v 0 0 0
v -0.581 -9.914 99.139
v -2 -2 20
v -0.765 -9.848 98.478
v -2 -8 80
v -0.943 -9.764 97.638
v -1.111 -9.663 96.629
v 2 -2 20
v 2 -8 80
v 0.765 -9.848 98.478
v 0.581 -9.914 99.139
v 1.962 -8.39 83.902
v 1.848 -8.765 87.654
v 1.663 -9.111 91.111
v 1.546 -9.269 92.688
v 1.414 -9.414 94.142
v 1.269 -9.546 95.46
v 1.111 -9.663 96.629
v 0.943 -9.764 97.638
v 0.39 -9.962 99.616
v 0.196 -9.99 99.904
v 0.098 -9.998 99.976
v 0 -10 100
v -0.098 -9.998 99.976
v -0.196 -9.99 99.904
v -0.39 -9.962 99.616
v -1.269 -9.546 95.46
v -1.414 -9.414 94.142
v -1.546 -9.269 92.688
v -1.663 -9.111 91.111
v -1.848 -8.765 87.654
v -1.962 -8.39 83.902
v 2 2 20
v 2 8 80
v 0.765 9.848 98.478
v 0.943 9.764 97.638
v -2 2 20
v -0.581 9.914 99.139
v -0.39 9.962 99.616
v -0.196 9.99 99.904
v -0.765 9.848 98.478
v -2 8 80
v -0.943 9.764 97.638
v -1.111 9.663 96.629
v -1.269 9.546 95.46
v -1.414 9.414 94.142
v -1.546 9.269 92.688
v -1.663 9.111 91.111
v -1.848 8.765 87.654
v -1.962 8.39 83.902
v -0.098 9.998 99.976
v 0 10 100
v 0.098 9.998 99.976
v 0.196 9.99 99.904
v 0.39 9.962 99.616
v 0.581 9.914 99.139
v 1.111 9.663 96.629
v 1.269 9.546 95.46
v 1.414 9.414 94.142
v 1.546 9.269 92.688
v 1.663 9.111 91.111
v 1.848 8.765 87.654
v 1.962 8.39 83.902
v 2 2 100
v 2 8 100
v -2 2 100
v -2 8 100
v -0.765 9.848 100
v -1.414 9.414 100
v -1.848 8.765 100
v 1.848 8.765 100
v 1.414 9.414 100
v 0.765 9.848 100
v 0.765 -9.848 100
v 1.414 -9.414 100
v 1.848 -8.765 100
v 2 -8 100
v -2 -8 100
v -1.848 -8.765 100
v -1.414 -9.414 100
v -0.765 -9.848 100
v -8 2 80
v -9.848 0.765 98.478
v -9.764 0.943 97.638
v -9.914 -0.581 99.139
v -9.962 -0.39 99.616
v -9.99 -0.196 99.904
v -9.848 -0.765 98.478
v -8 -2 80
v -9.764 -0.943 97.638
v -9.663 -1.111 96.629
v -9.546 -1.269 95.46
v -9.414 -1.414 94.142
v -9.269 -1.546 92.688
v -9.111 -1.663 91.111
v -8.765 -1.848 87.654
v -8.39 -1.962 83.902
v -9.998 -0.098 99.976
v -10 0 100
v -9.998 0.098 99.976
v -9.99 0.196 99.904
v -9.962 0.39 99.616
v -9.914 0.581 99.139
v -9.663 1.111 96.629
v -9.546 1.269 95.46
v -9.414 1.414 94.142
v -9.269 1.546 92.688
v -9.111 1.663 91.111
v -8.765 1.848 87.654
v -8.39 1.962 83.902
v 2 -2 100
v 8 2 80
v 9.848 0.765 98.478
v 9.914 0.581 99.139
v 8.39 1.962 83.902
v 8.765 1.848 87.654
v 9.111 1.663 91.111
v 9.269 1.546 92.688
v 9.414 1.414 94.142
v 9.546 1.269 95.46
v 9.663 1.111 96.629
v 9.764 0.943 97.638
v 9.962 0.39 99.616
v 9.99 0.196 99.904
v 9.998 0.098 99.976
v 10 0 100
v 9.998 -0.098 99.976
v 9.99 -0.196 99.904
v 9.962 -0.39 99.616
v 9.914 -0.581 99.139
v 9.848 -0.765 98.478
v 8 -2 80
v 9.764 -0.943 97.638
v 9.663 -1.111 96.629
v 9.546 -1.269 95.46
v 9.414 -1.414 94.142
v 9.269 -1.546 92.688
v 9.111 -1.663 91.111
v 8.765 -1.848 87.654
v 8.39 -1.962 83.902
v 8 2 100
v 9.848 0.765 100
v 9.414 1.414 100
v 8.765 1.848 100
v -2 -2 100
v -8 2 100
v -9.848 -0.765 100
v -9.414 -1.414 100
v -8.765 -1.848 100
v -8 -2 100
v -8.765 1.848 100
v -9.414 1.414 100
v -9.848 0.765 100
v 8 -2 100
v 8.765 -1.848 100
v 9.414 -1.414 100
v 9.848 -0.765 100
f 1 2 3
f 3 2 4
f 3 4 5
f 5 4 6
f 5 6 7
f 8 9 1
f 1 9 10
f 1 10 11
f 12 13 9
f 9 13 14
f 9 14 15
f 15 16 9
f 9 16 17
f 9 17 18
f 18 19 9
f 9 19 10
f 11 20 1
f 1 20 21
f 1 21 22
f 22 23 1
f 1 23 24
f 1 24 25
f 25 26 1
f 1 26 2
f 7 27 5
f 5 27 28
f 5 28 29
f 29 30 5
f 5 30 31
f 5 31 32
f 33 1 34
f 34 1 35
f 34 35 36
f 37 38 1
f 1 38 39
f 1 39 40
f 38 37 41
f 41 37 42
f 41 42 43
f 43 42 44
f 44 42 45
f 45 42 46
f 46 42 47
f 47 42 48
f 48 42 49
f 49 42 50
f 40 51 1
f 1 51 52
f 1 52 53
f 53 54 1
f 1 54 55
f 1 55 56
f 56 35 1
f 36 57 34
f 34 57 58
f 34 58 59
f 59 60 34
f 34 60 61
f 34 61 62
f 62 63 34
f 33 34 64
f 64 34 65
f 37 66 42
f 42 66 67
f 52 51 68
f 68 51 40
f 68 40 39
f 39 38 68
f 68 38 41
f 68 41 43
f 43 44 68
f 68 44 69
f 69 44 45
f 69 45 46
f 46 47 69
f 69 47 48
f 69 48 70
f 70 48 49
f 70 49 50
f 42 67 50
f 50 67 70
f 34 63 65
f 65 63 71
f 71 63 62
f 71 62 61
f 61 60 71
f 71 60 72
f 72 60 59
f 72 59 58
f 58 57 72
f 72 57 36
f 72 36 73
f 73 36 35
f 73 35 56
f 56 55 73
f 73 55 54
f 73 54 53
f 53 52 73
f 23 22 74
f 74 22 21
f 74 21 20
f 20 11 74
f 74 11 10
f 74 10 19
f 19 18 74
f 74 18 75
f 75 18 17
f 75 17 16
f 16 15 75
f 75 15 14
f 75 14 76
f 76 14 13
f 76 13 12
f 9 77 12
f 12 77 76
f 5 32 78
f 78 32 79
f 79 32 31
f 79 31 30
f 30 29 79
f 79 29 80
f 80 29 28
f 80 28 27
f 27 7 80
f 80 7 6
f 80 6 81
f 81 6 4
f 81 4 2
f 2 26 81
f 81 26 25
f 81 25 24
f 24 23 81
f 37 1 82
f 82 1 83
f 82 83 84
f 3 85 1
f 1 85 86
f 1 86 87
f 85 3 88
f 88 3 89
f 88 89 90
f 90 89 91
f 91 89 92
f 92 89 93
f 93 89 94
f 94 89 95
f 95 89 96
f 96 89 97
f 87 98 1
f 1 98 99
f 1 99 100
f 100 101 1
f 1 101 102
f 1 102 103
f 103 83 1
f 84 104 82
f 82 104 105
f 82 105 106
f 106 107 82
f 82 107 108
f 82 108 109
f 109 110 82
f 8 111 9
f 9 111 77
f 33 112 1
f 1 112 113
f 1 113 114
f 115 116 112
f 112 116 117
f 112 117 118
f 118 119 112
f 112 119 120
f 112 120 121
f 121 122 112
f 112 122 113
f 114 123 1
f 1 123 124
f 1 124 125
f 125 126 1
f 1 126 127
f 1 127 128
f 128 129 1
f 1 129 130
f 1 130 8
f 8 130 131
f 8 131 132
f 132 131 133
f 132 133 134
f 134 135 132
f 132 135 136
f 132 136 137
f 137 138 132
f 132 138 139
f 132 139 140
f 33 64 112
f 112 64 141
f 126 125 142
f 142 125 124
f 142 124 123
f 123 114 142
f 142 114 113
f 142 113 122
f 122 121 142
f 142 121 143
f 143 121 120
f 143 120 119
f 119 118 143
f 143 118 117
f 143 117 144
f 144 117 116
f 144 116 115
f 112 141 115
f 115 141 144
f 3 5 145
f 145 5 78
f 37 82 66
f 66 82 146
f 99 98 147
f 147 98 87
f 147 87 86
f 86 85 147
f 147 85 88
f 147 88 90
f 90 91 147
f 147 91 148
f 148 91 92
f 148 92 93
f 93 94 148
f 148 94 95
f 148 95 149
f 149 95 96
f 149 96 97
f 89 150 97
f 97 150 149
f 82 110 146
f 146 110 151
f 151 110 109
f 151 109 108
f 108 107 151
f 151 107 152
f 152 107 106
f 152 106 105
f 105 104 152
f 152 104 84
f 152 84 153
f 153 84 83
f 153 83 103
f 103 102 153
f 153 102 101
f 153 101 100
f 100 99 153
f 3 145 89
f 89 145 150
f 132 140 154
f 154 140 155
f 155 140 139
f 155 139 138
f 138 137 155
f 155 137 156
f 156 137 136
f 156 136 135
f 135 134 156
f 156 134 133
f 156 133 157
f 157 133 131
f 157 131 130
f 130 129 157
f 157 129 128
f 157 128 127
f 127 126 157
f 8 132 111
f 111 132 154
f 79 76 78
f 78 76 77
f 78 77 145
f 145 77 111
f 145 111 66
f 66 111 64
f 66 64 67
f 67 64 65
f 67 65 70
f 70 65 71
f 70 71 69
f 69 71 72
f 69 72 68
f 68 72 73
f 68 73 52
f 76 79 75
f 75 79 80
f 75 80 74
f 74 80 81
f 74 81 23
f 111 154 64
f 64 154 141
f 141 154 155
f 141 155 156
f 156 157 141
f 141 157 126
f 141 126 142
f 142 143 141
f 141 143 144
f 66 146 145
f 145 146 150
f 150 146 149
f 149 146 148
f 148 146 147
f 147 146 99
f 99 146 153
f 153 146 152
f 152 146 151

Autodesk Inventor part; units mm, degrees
ref_plane "YZ Plane" through (0, 0, 0) normal (1, 0, 0) x (0, 1, 0)
ref_plane "XZ Plane" through (0, 0, 0) normal (0, 1, 0) x (-1, 0, 0)
ref_plane "XY Plane" through (0, 0, 0) normal (0, 0, 1) x (1, 0, 0)
sketch "Sketch1" plane through (0, 0, 0) normal (0, 0, 1) x (1, 0, 0)
  line L0 (0, 0) -> (0, -10)
  line L1 (0, 0) -> (10, 0)
  line L2 (0, 0) -> (0, 10)
  line L3 (0, 0) -> (-10, 0)
  line L4 (-10, 0) -> (-10, -2)
  line L5 (-10, -2) -> (0, -2)
  line L6 (-10, 0) -> (-10, 2)
  line L7 (-10, 2) -> (0, 2)
  line L8 (0, 10) -> (-2, 10)
  line L9 (-2, 10) -> (-2, 0)
  line L10 (0, 10) -> (2, 10)
  line L11 (2, 10) -> (2, 0)
  line L12 (0, 2) -> (10, 2)
  line L13 (10, 2) -> (10, 0)
  line L14 (10, -2) -> (0, -2)
  line L15 (10, -2) -> (10, 0)
  line L16 (2, 0) -> (2, -10)
  line L17 (0, -10) -> (2, -10)
  line L18 (0, -10) -> (-2, -10)
  line L19 (-2, -10) -> (-2, 0)
  line L20 (-10, 0) -> (-8, 0)
  line L21 (-8, 0) -> (-8, -2)
  line L22 (-8, 0) -> (-8, 2)
  arc A0 (-8, 2) -> (-10, 0) centre (-8, 0) ccw
  arc A1 (-10, 0) -> (-8, -2) centre (-8, 0) ccw
  line L23 (0, -10) -> (0, -8)
  line L24 (0, -8) -> (2, -8)
  line L25 (0, -8) -> (-2, -8)
  arc A2 (-2, -8) -> (0, -10) centre (0, -8) ccw
  arc A3 (0, -10) -> (2, -8) centre (0, -8) ccw
  line L26 (10, 0) -> (8, 0)
  line L27 (8, 0) -> (8, 2)
  line L28 (8, 0) -> (8, -2)
  arc A4 (8, -2) -> (10, 0) centre (8, 0) ccw
  arc A5 (10, 0) -> (8, 2) centre (8, 0) ccw
  line L29 (0, 10) -> (0, 8)
  line L30 (0, 8) -> (2, 8)
  line L31 (0, 8) -> (-2, 8)
  arc A6 (0, 10) -> (-2, 8) centre (0, 8) ccw
  arc A7 (2, 8) -> (0, 10) centre (0, 8) ccw
  point P0 (-2, -2)
  point P1 (2, -2)
  point P2 (2, 2)
  point P3 (-2, 2)
  dimension "d0" = 10
  dimension "d1" = 10
  dimension "d2" = 10
  dimension "d3" = 10
  dimension "d4" = 2
  dimension "d5" = 2
  dimension "d6" = 2
  dimension "d7" = 2
  dimension "d8" = 2
  dimension "d9" = 2
  dimension "d10" = 2
  dimension "d11" = 2
  dimension "d12" = 2
  dimension "d13" = 2
  dimension "d14" = 2
  dimension "d15" = 2
  dimension "d16" = 2
  dimension "d17" = 2
  dimension "d18" = 2
extrude "Extrusion1" add sketch "Sketch1" along normal blind 100 contours L1 L16 L14 L0 | L2 L12 L11 L1 | L3 L9 L7 L2 | L0 L5 L19 L3 | L14 L16 L24 L0 | L0 L25 L19 L5 | L11 L12 L27 L1 | L1 L28 L14 L16 | L7 L9 L31 L2 | L2 L30 L11 L12 | L19 L5 L21 L3 | L3 L22 L7 L9 | L24 A3 L0 | L0 A2 L25 | L27 A5 L1 | L1 A4 L28 | L31 A6 L2 | L2 A7 L30 | L21 A1 L3 | L3 A0 L22
sketch "Sketch2" plane through (0, 0, 0) normal (0, 1, 0) x (-1, 0, 0)
  line L0 (2, 100) -> (-2, 100) projected
  line L1 (10, 0) -> (10, 100) projected
  line L2 (2, 100) -> (2, 0)
  line L3 (10, 100) -> (2, 100)
  line L4 (-2, 100) -> (-2, 0)
  line L5 (-8, 100) -> (-10, 100) projected
  line L6 (-10, 100) -> (-2, 100)
  line L7 (10, 0) -> (10, 100)
  line L8 (-2, 0) -> (-10, 0)
  line L9 (-10, 0) -> (-10, 100)
  line L10 (10, 0) -> (0, 0)
  line L11 (0, 0) -> (10, 100)
  line L12 (0, 0) -> (-10, 100)
  line L13 (-10, 0) -> (0, 0)
  line L14 (0, 0) -> (-10, 100)
extrude "Extrusion2" cut sketch "Sketch2" along normal mid plane 20 contours L11 L1 L10 L2 | L2 L10 L11 | L12 L13 L4 | L4 L8 L9 L12
sketch "Sketch3" plane through (0, 0, 0) normal (1, 0, 0) x (0, 1, 0)
  line L0 (0, 100) -> (-2, 100) projected
  line L1 (0, 0) -> (0, 100)
  line L2 (0, 100) -> (10, 100)
  line L3 (10, 0) -> (10, 100) projected
  line L4 (10, 100) -> (10, 0)
  line L5 (-10, 0) -> (10, 0) projected
  line L6 (0, 0) -> (10, 0)
  line L7 (10, 0) -> (0, 0)
  line L8 (10, 100) -> (0, 0)
  line L9 (0, 0) -> (-10, 0)
  line L10 (-10, 0) -> (-10, 100)
  line L11 (-10, 100) -> (0, 100)
  line L12 (-10, 100) -> (0, 0)
extrude "Extrusion3" cut sketch "Sketch3" along normal mid plane 20 contours L8 L3 L5 | L5 L10 L12
sketch "Sketch4" plane through (0, 0, 100) normal (0, 0, 1) x (1, 0, 0)
  line L0 (-8, -2) -> (-2, -2) projected
  line L1 (-2, -2) -> (-8, -2)
  line L2 (-2, -2) -> (-2, -7.923)
  line L3 (2, -8) -> (2, -2) projected
  line L4 (2, -2) -> (2, -8)
  arc A0 (8, -2) -> (10, 0) centre (8, 0) ccw projected
  line L5 (2, -2) -> (8, -2)
  line L6 (2, 2) -> (2, 8) projected
  line L7 (8, 2) -> (2, 2) projected
  line L8 (2, 2) -> (8, 2)
  line L9 (2, 2) -> (2, 8)
  line L10 (-2, 8) -> (-2, 2) projected
  line L11 (-2, 2) -> (-2, 8)
  arc A1 (-8, 2) -> (-10, 0) centre (-8, 0) ccw projected
  line L12 (-2, 2) -> (-8, 2)
  arc A2 (-8, 2) -> (-8, -2) centre (-8, 0) ccw
  arc A3 (-2, -8) -> (0, -10) centre (0, -8) ccw projected
  arc A4 (-2, -8) -> (2, -8) centre (0, -8) ccw
  arc A5 (8, -2) -> (8, 2) centre (8, 0) ccw
  arc A6 (2, 8) -> (-2, 8) centre (0, 8) ccw
properties part number "Prikker V1.1" material "ABS Plastic"
